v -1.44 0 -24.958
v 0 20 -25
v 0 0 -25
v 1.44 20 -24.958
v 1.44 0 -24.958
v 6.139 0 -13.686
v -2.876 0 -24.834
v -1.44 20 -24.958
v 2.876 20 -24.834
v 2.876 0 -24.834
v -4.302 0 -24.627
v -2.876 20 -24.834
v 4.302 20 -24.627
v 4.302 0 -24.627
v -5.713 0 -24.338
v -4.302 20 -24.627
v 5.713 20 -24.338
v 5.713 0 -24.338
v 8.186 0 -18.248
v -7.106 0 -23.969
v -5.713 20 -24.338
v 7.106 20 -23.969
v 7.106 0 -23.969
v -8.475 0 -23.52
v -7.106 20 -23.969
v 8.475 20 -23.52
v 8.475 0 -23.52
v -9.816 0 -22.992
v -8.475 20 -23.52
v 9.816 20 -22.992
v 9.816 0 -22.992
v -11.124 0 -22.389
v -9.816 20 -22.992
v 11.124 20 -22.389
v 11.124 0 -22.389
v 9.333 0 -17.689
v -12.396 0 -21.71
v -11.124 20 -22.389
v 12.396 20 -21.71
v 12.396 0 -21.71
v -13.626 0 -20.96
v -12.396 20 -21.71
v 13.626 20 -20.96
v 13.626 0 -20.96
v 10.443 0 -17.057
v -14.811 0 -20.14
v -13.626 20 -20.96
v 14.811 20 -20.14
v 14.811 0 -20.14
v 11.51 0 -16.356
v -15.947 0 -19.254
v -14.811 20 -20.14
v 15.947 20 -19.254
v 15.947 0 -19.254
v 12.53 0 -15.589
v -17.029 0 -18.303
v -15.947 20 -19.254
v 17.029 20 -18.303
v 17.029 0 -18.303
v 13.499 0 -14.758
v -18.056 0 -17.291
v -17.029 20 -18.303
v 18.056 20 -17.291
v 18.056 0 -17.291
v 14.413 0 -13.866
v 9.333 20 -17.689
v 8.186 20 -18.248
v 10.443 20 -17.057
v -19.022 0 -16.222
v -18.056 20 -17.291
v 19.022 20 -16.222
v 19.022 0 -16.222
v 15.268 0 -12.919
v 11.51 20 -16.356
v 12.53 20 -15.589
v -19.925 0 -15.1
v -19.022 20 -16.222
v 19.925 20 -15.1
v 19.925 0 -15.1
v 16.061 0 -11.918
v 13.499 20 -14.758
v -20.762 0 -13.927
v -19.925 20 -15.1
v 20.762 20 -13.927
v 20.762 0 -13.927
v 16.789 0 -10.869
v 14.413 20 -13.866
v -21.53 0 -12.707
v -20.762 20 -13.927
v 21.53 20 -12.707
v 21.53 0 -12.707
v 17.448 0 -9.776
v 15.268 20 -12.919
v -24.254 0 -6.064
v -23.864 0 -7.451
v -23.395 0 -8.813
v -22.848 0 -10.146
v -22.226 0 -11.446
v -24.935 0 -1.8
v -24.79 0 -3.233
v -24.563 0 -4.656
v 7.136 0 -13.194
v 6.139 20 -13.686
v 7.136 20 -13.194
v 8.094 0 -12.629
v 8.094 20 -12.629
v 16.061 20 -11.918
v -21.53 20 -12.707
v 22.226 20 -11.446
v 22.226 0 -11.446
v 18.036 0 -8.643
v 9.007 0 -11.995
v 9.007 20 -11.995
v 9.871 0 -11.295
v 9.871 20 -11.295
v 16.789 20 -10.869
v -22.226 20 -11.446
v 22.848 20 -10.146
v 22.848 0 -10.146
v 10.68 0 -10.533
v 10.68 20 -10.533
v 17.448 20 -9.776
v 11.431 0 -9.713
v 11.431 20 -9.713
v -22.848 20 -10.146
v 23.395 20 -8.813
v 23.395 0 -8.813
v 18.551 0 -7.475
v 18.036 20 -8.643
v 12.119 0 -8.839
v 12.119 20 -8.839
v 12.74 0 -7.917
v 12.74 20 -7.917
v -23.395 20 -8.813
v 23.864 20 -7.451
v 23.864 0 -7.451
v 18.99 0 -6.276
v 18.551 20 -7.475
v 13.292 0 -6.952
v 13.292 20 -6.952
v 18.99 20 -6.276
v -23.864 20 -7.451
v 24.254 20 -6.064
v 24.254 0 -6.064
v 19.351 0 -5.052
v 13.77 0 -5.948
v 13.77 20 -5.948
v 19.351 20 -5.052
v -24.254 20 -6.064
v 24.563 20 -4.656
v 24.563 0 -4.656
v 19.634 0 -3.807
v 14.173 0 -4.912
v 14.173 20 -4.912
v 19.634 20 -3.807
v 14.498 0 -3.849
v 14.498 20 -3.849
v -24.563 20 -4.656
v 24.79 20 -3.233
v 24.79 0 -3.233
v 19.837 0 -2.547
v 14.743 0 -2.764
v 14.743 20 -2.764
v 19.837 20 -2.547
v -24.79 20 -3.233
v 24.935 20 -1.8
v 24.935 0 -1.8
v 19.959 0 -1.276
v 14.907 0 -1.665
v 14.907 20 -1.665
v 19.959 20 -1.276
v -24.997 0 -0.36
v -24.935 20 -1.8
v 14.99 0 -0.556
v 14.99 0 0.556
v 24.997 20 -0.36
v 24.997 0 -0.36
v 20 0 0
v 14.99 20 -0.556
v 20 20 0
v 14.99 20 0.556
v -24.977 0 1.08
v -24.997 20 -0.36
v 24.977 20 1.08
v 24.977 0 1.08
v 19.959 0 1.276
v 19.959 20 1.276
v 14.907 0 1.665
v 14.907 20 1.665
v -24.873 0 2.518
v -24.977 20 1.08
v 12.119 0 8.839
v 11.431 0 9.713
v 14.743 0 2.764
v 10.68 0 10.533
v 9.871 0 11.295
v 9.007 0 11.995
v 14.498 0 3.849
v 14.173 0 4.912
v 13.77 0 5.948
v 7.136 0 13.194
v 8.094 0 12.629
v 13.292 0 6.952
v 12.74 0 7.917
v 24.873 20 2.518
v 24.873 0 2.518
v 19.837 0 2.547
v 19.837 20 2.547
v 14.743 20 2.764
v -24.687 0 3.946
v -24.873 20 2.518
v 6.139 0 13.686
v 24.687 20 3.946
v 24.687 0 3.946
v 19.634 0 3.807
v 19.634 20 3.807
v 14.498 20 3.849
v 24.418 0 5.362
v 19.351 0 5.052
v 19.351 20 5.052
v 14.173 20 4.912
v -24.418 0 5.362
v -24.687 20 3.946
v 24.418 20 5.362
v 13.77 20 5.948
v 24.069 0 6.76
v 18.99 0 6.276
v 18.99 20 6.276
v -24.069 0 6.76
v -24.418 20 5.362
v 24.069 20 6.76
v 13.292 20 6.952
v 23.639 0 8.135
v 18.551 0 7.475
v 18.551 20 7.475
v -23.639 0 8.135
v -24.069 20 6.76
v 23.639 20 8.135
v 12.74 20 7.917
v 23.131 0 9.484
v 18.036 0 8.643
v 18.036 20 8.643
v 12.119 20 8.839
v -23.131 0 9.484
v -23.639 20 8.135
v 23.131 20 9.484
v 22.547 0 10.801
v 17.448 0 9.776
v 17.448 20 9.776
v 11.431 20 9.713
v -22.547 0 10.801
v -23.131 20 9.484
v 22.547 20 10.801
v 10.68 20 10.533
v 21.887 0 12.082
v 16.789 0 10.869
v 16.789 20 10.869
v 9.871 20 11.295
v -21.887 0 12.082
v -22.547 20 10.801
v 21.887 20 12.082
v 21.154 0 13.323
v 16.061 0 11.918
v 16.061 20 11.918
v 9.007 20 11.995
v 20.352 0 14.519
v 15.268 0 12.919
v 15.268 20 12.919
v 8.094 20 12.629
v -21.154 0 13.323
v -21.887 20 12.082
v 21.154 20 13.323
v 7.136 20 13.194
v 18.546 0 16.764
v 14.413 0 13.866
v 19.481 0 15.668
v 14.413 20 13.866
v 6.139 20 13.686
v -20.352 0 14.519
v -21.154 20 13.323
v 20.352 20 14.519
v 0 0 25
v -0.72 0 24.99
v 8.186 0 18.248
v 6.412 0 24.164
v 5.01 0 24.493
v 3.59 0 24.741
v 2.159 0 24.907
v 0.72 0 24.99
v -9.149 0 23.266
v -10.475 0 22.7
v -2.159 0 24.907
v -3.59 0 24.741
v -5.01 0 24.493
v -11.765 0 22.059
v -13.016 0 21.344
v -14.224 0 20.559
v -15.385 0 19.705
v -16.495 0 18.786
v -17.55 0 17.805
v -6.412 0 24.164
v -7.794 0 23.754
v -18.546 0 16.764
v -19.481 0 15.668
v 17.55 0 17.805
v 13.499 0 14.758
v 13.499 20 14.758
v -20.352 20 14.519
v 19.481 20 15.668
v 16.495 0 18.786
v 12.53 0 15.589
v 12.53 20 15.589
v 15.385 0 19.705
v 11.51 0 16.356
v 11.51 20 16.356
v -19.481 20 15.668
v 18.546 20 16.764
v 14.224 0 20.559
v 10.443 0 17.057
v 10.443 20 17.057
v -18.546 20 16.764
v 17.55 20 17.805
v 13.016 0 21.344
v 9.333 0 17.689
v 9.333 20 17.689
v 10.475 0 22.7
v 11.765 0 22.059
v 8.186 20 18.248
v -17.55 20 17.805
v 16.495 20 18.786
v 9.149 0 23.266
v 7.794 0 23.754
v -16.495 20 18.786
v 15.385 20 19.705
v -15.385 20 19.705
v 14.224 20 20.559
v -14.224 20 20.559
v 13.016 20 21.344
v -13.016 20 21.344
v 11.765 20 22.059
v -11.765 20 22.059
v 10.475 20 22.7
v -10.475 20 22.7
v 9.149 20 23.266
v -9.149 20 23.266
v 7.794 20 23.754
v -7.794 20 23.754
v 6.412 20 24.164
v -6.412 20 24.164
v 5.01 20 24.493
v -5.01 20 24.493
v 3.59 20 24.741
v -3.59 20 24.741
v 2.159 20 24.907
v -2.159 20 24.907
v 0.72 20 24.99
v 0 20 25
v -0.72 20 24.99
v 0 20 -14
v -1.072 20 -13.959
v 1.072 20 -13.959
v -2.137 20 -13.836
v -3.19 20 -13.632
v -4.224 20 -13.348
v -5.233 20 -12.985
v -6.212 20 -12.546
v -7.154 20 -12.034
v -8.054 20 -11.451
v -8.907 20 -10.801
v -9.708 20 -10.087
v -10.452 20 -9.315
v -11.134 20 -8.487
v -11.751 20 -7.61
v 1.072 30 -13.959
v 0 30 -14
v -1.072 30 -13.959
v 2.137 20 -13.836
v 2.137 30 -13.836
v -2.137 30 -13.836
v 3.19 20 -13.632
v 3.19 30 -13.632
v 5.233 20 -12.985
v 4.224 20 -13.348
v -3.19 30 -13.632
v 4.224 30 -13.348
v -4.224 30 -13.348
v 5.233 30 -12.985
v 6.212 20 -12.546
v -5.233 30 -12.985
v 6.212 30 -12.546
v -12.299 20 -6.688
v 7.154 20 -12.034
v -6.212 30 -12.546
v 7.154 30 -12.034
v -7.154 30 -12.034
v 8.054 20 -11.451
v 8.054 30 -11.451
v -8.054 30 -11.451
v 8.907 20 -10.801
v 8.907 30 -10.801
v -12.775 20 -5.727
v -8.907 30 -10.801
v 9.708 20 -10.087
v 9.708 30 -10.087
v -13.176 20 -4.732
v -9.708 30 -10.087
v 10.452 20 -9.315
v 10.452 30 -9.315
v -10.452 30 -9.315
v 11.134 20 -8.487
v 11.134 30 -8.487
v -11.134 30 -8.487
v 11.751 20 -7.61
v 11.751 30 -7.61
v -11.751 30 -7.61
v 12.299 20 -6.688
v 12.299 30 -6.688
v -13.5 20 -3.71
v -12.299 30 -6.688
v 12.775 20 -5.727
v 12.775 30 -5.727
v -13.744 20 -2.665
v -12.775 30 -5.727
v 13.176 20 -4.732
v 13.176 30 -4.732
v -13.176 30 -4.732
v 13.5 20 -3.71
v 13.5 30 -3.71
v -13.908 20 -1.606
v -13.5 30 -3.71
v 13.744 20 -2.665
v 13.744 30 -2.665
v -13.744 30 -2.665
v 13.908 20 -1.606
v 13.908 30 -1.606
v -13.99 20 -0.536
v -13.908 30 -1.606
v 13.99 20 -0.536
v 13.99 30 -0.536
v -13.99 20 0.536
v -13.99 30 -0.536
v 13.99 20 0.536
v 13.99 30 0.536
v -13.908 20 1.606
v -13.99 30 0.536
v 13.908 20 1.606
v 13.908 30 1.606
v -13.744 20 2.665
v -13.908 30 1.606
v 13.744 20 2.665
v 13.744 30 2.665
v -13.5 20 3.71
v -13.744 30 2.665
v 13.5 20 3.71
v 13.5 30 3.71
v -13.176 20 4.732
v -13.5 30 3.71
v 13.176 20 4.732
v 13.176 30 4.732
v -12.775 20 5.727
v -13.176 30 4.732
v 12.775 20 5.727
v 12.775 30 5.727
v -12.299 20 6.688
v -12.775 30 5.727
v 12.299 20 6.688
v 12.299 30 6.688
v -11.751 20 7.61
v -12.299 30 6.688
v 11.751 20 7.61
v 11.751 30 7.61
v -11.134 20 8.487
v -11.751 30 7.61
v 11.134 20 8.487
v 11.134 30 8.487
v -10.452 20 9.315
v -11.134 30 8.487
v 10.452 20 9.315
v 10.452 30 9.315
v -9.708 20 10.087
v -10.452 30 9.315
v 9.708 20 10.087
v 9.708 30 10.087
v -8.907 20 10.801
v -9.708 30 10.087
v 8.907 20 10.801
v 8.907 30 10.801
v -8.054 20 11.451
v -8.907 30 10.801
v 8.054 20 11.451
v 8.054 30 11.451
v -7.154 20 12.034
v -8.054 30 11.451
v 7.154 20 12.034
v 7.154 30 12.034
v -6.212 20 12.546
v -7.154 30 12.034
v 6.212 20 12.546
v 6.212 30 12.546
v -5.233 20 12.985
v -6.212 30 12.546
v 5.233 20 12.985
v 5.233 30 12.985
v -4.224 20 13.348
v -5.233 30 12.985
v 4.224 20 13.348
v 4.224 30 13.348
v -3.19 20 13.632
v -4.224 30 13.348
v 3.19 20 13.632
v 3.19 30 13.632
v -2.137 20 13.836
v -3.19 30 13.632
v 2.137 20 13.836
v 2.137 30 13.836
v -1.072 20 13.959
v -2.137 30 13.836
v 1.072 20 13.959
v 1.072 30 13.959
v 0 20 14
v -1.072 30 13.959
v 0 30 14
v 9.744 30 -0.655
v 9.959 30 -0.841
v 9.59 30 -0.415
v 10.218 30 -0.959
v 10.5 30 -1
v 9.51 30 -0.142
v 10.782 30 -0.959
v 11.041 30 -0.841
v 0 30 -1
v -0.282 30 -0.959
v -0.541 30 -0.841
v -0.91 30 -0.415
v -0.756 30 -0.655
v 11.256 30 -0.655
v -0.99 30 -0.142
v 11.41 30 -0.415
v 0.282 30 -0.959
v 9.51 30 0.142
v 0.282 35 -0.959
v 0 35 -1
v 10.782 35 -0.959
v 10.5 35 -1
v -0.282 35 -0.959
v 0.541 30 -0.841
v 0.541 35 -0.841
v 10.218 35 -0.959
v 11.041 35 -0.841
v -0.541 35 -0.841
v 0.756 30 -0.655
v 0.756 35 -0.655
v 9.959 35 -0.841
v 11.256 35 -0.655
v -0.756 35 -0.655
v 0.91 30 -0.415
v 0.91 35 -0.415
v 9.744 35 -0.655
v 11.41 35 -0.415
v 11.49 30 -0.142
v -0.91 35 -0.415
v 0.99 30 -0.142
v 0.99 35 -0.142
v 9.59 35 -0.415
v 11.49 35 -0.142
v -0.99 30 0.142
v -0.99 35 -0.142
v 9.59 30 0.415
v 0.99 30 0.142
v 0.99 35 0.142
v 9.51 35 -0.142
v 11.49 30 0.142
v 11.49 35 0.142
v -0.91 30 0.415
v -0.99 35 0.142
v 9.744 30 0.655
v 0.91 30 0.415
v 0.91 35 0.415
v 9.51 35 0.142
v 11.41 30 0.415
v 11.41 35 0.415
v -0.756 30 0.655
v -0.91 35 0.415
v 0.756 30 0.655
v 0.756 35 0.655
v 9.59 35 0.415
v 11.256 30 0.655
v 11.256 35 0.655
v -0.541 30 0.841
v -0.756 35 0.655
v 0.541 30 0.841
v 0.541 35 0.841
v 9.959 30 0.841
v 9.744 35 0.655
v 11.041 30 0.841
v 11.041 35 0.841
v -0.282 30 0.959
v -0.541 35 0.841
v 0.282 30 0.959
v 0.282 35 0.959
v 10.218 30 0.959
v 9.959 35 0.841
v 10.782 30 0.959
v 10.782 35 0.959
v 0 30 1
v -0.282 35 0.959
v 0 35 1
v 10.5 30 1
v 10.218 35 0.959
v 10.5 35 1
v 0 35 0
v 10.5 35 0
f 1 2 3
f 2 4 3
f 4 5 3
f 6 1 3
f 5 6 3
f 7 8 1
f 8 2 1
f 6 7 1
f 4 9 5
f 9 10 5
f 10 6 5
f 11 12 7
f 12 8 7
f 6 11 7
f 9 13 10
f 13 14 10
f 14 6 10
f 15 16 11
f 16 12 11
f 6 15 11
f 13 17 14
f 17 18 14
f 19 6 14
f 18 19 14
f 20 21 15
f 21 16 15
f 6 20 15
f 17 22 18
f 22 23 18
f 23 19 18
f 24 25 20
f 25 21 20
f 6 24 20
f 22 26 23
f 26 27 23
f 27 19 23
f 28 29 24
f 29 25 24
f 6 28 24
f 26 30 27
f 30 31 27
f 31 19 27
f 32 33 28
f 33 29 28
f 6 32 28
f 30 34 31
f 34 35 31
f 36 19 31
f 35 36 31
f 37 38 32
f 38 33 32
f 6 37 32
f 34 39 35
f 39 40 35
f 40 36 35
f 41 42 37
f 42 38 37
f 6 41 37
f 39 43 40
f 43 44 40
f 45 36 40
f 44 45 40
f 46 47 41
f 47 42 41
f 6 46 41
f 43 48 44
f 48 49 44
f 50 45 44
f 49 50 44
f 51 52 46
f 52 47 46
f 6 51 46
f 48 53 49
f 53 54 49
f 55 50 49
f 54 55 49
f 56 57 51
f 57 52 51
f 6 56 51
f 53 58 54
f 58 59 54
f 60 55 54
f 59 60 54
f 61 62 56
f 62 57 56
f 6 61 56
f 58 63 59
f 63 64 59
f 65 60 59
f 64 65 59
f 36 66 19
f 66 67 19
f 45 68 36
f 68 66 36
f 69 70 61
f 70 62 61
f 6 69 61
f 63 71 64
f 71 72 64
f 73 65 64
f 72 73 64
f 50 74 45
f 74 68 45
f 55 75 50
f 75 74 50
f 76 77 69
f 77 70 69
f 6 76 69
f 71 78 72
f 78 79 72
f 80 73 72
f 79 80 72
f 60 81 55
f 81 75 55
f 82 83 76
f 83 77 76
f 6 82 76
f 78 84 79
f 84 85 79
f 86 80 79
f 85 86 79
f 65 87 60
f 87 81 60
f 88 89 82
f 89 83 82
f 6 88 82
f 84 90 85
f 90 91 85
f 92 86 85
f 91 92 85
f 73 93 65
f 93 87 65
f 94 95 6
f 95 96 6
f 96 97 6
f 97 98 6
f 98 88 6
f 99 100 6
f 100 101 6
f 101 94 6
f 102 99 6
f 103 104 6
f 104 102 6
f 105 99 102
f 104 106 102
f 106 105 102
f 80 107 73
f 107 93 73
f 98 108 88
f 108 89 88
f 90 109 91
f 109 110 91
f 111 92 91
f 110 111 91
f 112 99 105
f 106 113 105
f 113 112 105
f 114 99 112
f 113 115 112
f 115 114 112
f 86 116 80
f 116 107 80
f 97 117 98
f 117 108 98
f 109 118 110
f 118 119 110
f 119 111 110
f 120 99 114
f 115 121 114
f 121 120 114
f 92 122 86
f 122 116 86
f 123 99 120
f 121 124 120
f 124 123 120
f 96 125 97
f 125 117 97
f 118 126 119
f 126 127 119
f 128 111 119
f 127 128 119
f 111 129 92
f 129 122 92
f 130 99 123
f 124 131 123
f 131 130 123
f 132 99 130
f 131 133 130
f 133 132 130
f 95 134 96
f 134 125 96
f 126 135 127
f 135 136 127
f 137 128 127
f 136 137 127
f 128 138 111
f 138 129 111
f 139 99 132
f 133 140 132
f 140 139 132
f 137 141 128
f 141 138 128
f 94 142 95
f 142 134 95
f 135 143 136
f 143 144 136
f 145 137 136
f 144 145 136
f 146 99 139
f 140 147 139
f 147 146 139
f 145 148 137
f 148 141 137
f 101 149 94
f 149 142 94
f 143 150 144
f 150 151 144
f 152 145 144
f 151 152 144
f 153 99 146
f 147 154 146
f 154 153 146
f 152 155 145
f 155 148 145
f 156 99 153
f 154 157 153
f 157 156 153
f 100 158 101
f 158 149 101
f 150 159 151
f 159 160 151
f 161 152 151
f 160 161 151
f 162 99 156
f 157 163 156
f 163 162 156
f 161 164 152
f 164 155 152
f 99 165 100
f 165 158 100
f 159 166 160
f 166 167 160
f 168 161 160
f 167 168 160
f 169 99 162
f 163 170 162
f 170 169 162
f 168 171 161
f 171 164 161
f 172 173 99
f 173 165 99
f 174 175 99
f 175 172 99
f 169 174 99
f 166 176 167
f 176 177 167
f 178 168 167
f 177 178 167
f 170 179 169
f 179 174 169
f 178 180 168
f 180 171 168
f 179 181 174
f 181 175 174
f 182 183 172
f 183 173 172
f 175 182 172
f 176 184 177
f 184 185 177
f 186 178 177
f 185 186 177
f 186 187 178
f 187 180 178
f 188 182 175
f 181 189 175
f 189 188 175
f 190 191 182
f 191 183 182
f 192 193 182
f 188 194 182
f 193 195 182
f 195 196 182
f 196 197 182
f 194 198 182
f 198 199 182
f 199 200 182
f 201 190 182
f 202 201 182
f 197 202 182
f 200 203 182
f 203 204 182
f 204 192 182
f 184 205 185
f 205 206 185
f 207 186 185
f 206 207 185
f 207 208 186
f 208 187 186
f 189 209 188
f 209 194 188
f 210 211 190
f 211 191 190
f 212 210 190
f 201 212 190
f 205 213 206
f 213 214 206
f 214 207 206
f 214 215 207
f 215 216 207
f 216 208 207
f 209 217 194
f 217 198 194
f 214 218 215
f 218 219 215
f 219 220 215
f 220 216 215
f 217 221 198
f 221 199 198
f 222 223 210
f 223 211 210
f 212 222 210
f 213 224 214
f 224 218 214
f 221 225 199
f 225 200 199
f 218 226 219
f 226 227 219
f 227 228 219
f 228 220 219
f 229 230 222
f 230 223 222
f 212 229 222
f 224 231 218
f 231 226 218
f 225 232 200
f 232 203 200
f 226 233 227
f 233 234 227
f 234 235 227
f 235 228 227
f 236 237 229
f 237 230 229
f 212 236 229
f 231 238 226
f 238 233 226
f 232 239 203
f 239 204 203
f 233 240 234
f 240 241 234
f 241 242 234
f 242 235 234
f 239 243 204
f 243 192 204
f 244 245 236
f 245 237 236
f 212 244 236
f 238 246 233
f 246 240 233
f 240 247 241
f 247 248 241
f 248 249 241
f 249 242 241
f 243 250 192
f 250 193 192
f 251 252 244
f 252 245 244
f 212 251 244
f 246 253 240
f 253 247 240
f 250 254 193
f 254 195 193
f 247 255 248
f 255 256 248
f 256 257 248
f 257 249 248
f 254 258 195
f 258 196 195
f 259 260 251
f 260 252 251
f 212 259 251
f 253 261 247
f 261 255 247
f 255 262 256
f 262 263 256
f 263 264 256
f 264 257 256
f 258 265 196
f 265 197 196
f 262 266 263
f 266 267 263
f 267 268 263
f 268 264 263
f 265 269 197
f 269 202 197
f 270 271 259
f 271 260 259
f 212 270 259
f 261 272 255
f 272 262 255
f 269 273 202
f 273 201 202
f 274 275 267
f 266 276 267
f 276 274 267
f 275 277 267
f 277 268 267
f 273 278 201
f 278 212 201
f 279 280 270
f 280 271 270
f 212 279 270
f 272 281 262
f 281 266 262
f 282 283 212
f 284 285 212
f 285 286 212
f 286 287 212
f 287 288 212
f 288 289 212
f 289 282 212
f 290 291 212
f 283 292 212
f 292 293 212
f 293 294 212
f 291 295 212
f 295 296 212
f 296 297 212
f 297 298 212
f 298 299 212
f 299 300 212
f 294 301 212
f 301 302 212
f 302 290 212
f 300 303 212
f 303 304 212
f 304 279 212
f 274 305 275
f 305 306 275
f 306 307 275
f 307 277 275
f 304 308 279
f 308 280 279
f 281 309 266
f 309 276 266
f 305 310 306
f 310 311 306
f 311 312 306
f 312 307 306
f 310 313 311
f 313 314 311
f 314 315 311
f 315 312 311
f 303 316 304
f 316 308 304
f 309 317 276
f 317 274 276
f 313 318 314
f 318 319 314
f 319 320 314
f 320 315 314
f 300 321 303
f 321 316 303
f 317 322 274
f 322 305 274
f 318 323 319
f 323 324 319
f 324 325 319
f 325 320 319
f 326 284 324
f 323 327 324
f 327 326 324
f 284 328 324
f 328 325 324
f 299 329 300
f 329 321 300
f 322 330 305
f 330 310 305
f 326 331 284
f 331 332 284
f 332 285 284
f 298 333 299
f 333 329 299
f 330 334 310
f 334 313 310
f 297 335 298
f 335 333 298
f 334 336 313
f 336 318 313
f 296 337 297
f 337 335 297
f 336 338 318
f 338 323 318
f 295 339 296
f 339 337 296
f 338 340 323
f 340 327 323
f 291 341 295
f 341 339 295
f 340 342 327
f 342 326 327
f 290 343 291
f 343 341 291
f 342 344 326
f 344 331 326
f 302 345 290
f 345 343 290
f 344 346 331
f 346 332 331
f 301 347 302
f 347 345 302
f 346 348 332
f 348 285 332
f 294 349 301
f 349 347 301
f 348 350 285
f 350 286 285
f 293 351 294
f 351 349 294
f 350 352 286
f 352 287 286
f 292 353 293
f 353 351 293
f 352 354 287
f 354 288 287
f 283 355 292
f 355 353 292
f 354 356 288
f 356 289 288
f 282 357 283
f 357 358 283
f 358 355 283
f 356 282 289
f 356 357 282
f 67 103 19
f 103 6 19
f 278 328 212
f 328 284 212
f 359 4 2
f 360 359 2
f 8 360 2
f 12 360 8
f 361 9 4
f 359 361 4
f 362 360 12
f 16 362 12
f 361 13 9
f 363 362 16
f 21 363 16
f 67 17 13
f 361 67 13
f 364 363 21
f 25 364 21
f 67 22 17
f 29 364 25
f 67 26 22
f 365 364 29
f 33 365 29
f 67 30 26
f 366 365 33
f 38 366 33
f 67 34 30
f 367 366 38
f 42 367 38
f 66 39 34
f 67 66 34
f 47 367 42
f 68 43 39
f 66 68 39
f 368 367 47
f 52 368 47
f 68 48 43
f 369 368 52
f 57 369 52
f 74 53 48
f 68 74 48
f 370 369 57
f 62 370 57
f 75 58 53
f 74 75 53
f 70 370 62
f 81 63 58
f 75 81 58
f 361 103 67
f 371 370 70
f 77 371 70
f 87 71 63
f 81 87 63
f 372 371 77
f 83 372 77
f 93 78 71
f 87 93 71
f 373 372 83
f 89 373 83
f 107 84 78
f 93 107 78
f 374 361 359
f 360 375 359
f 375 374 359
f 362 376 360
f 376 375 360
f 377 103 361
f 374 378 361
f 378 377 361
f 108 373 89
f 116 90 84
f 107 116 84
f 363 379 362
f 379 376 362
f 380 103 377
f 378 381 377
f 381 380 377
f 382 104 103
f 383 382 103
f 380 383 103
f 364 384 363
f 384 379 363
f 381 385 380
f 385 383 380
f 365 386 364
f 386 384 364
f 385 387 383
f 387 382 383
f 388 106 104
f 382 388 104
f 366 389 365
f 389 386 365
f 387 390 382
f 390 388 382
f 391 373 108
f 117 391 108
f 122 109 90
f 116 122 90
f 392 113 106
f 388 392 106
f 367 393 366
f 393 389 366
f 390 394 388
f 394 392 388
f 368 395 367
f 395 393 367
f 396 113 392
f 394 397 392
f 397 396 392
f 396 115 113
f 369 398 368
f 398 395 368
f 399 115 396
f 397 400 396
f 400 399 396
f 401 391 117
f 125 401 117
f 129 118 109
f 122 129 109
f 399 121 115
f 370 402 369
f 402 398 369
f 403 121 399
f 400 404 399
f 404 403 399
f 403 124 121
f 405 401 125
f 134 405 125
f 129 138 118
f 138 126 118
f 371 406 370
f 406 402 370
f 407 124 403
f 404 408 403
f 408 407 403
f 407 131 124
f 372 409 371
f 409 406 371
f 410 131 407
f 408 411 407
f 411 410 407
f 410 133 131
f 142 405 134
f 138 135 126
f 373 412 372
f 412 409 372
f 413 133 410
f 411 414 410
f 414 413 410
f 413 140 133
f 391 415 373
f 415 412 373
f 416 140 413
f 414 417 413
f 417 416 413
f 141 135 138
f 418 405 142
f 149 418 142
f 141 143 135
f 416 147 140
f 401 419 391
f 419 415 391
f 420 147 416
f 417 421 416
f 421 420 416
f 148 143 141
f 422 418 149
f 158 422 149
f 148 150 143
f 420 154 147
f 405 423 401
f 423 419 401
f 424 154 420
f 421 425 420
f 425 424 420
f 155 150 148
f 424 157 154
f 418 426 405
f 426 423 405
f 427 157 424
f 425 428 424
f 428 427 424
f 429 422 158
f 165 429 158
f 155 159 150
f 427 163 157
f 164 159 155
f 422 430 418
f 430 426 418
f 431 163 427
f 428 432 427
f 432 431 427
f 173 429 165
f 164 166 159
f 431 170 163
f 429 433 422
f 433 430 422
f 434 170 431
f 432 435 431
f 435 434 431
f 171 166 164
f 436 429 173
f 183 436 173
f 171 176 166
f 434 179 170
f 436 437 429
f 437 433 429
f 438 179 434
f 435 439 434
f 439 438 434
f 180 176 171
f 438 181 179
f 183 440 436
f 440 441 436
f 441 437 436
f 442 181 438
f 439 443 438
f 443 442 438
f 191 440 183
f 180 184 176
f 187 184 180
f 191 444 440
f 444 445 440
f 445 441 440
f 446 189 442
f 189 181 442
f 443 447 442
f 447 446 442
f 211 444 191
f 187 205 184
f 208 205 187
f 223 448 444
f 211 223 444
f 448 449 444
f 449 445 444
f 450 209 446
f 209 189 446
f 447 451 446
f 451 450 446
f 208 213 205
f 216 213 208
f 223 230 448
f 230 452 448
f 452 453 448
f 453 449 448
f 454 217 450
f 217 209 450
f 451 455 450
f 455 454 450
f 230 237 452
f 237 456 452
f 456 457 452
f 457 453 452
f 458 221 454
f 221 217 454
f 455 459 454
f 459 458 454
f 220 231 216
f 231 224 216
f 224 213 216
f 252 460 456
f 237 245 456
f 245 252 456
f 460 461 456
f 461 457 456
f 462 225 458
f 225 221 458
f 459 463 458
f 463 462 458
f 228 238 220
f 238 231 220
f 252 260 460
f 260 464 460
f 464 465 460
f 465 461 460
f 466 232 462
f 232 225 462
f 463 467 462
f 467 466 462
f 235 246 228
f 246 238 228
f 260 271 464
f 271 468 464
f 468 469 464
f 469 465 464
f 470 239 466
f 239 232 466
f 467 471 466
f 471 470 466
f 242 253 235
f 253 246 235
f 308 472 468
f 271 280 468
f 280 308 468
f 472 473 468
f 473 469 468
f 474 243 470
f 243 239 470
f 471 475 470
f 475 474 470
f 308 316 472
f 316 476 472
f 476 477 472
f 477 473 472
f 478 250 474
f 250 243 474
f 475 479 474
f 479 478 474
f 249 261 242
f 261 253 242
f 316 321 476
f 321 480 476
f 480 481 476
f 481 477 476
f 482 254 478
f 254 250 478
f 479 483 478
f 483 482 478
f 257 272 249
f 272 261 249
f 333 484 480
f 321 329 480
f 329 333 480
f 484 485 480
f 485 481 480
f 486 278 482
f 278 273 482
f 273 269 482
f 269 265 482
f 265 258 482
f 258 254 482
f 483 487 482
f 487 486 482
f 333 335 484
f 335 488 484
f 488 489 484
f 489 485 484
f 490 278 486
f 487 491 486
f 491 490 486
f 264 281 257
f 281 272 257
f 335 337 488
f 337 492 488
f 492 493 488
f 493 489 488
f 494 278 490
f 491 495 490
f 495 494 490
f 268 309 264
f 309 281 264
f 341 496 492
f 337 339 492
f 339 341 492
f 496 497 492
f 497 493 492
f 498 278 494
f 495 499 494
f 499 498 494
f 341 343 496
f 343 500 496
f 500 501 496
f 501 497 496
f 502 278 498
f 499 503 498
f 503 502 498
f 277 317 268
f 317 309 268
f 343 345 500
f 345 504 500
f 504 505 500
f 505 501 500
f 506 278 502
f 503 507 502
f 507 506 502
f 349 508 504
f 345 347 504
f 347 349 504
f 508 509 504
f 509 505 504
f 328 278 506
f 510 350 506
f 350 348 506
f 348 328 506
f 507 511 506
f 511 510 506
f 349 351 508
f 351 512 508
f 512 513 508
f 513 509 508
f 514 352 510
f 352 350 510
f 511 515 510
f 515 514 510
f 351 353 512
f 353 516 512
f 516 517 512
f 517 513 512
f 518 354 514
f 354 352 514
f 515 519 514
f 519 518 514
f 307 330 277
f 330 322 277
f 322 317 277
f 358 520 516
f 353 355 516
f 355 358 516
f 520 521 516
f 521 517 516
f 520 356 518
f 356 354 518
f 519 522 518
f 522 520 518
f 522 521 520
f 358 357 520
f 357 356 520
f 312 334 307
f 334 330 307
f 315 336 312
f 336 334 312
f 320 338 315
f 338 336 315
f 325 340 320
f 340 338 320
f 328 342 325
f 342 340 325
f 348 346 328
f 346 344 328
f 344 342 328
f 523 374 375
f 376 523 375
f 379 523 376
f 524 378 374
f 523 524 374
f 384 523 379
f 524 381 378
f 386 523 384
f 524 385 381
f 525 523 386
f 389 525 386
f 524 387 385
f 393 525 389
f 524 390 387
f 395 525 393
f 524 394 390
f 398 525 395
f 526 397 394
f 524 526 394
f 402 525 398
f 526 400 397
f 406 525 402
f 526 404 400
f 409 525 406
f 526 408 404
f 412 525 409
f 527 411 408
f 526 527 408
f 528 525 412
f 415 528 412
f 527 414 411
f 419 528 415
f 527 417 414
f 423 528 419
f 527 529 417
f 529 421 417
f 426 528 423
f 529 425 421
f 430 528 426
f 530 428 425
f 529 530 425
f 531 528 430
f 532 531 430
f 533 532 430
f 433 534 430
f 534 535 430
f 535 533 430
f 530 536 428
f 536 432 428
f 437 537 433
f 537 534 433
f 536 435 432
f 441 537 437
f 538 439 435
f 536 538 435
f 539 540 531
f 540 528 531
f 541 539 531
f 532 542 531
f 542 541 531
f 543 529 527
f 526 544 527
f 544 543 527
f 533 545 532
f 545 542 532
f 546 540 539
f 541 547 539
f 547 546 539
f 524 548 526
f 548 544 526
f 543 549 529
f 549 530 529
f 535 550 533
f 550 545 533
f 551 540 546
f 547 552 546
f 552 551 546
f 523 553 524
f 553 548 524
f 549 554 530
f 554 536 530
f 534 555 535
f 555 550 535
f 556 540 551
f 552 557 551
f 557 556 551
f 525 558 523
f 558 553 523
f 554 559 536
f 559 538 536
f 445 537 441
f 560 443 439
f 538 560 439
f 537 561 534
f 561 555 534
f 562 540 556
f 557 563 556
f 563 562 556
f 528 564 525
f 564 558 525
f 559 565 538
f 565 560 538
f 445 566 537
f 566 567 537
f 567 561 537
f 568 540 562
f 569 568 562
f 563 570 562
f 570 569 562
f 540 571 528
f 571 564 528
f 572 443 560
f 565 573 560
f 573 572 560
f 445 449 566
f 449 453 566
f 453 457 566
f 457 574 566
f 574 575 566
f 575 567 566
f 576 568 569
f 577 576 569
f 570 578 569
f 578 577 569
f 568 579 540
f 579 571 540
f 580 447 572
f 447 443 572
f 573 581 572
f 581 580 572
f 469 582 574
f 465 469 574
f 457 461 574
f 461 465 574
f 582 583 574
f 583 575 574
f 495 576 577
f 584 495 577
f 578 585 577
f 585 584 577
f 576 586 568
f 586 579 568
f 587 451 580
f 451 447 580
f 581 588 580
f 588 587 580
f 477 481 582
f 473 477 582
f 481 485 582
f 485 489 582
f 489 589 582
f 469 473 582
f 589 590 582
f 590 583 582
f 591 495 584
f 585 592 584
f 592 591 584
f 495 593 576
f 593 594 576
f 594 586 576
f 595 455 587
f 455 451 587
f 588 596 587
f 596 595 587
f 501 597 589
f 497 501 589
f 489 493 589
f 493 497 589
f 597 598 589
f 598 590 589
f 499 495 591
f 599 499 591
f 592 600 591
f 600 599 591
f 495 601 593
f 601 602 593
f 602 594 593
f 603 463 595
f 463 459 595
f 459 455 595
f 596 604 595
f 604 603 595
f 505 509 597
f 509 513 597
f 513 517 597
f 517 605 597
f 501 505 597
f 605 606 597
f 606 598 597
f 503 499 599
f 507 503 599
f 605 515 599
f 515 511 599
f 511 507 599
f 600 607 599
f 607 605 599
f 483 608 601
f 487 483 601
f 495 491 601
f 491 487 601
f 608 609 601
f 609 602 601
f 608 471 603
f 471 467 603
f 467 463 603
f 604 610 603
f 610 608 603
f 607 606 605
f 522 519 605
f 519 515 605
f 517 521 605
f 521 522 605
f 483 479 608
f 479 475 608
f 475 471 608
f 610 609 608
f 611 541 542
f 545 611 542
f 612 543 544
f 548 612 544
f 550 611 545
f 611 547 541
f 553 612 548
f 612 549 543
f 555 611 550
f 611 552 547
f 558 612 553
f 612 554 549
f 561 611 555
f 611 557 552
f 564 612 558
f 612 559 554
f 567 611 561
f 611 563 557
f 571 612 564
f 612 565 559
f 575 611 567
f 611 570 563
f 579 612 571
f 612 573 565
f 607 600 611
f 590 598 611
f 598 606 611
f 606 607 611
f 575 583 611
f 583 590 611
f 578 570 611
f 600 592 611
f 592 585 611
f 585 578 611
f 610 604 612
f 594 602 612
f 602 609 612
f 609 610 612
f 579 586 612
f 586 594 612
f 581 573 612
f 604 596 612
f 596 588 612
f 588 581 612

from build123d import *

# Parameters (mm, degrees)
RESSALTO_EXTRUS_O2_DEPTH = 20
ESBO_O3_R                = 14
BOSS_EXTRUDE1_DEPTH      = 10
SKETCH2_R                = 1
BOSS_EXTRUDE2_DEPTH      = 5
CUT_EXTRUDE2_DEPTH       = 20


with BuildPart() as part:
    # Esboço1 → Ressalto-extrusão2 (new body)
    with BuildSketch(Plane(origin=(0, 0, 0), x_dir=(1, 0, 0), z_dir=(0, 1, 0))):
        with BuildLine():
            ThreePointArc((-12.5, -21.650635095), (0, -25), (12.5, -21.650635095))
            ThreePointArc((12.5, -21.650635095), (21.650635095, -12.5), (25, 0))
            ThreePointArc((25, 0), (-12.5, 21.650635095), (-12.5, -21.650635095))
        make_face()
    extrude(amount=RESSALTO_EXTRUS_O2_DEPTH)

    # Esboço3 → Boss-Extrude1 (add)
    with BuildSketch(Plane(origin=(0, 20, 0), x_dir=(1, 0, 0), z_dir=(0, 1, 0))):
        with Locations(Location((0, 0, 0), (0, 0, 270))):
            Circle(ESBO_O3_R)
    extrude(amount=BOSS_EXTRUDE1_DEPTH)

    # Sketch2 → Boss-Extrude2 (add)
    with BuildSketch(Plane(origin=(0, 30, 0), x_dir=(1, 0, 0), z_dir=(0, 1, 0))):
        with Locations(Location((0, 0, 0), (0, 0, 270))):
            Circle(SKETCH2_R)
        with Locations(Location((10.5, 0, 0), (0, 0, 270))):
            Circle(SKETCH2_R)
    extrude(amount=BOSS_EXTRUDE2_DEPTH)

    # Sketch3 → Cut-Extrude2 (cut)
    with BuildSketch(Plane(origin=(0, 20, 0), x_dir=(1, 0, 0), z_dir=(0, 1, 0))):
        with BuildLine():
            Line((8.185723081, -18.248121483), (6.13929231, -13.686091112))
            ThreePointArc((6.13929231, -13.686091112), (15, 0), (6.13929231, 13.686091112))
            Line((6.13929231, 13.686091112), (8.185723081, 18.248121483))
            ThreePointArc((8.185723081, 18.248121483), (20, 0), (8.185723081, -18.248121483))
        make_face()
    extrude(amount=-CUT_EXTRUDE2_DEPTH, mode=Mode.SUBTRACT)


solid = part.part
